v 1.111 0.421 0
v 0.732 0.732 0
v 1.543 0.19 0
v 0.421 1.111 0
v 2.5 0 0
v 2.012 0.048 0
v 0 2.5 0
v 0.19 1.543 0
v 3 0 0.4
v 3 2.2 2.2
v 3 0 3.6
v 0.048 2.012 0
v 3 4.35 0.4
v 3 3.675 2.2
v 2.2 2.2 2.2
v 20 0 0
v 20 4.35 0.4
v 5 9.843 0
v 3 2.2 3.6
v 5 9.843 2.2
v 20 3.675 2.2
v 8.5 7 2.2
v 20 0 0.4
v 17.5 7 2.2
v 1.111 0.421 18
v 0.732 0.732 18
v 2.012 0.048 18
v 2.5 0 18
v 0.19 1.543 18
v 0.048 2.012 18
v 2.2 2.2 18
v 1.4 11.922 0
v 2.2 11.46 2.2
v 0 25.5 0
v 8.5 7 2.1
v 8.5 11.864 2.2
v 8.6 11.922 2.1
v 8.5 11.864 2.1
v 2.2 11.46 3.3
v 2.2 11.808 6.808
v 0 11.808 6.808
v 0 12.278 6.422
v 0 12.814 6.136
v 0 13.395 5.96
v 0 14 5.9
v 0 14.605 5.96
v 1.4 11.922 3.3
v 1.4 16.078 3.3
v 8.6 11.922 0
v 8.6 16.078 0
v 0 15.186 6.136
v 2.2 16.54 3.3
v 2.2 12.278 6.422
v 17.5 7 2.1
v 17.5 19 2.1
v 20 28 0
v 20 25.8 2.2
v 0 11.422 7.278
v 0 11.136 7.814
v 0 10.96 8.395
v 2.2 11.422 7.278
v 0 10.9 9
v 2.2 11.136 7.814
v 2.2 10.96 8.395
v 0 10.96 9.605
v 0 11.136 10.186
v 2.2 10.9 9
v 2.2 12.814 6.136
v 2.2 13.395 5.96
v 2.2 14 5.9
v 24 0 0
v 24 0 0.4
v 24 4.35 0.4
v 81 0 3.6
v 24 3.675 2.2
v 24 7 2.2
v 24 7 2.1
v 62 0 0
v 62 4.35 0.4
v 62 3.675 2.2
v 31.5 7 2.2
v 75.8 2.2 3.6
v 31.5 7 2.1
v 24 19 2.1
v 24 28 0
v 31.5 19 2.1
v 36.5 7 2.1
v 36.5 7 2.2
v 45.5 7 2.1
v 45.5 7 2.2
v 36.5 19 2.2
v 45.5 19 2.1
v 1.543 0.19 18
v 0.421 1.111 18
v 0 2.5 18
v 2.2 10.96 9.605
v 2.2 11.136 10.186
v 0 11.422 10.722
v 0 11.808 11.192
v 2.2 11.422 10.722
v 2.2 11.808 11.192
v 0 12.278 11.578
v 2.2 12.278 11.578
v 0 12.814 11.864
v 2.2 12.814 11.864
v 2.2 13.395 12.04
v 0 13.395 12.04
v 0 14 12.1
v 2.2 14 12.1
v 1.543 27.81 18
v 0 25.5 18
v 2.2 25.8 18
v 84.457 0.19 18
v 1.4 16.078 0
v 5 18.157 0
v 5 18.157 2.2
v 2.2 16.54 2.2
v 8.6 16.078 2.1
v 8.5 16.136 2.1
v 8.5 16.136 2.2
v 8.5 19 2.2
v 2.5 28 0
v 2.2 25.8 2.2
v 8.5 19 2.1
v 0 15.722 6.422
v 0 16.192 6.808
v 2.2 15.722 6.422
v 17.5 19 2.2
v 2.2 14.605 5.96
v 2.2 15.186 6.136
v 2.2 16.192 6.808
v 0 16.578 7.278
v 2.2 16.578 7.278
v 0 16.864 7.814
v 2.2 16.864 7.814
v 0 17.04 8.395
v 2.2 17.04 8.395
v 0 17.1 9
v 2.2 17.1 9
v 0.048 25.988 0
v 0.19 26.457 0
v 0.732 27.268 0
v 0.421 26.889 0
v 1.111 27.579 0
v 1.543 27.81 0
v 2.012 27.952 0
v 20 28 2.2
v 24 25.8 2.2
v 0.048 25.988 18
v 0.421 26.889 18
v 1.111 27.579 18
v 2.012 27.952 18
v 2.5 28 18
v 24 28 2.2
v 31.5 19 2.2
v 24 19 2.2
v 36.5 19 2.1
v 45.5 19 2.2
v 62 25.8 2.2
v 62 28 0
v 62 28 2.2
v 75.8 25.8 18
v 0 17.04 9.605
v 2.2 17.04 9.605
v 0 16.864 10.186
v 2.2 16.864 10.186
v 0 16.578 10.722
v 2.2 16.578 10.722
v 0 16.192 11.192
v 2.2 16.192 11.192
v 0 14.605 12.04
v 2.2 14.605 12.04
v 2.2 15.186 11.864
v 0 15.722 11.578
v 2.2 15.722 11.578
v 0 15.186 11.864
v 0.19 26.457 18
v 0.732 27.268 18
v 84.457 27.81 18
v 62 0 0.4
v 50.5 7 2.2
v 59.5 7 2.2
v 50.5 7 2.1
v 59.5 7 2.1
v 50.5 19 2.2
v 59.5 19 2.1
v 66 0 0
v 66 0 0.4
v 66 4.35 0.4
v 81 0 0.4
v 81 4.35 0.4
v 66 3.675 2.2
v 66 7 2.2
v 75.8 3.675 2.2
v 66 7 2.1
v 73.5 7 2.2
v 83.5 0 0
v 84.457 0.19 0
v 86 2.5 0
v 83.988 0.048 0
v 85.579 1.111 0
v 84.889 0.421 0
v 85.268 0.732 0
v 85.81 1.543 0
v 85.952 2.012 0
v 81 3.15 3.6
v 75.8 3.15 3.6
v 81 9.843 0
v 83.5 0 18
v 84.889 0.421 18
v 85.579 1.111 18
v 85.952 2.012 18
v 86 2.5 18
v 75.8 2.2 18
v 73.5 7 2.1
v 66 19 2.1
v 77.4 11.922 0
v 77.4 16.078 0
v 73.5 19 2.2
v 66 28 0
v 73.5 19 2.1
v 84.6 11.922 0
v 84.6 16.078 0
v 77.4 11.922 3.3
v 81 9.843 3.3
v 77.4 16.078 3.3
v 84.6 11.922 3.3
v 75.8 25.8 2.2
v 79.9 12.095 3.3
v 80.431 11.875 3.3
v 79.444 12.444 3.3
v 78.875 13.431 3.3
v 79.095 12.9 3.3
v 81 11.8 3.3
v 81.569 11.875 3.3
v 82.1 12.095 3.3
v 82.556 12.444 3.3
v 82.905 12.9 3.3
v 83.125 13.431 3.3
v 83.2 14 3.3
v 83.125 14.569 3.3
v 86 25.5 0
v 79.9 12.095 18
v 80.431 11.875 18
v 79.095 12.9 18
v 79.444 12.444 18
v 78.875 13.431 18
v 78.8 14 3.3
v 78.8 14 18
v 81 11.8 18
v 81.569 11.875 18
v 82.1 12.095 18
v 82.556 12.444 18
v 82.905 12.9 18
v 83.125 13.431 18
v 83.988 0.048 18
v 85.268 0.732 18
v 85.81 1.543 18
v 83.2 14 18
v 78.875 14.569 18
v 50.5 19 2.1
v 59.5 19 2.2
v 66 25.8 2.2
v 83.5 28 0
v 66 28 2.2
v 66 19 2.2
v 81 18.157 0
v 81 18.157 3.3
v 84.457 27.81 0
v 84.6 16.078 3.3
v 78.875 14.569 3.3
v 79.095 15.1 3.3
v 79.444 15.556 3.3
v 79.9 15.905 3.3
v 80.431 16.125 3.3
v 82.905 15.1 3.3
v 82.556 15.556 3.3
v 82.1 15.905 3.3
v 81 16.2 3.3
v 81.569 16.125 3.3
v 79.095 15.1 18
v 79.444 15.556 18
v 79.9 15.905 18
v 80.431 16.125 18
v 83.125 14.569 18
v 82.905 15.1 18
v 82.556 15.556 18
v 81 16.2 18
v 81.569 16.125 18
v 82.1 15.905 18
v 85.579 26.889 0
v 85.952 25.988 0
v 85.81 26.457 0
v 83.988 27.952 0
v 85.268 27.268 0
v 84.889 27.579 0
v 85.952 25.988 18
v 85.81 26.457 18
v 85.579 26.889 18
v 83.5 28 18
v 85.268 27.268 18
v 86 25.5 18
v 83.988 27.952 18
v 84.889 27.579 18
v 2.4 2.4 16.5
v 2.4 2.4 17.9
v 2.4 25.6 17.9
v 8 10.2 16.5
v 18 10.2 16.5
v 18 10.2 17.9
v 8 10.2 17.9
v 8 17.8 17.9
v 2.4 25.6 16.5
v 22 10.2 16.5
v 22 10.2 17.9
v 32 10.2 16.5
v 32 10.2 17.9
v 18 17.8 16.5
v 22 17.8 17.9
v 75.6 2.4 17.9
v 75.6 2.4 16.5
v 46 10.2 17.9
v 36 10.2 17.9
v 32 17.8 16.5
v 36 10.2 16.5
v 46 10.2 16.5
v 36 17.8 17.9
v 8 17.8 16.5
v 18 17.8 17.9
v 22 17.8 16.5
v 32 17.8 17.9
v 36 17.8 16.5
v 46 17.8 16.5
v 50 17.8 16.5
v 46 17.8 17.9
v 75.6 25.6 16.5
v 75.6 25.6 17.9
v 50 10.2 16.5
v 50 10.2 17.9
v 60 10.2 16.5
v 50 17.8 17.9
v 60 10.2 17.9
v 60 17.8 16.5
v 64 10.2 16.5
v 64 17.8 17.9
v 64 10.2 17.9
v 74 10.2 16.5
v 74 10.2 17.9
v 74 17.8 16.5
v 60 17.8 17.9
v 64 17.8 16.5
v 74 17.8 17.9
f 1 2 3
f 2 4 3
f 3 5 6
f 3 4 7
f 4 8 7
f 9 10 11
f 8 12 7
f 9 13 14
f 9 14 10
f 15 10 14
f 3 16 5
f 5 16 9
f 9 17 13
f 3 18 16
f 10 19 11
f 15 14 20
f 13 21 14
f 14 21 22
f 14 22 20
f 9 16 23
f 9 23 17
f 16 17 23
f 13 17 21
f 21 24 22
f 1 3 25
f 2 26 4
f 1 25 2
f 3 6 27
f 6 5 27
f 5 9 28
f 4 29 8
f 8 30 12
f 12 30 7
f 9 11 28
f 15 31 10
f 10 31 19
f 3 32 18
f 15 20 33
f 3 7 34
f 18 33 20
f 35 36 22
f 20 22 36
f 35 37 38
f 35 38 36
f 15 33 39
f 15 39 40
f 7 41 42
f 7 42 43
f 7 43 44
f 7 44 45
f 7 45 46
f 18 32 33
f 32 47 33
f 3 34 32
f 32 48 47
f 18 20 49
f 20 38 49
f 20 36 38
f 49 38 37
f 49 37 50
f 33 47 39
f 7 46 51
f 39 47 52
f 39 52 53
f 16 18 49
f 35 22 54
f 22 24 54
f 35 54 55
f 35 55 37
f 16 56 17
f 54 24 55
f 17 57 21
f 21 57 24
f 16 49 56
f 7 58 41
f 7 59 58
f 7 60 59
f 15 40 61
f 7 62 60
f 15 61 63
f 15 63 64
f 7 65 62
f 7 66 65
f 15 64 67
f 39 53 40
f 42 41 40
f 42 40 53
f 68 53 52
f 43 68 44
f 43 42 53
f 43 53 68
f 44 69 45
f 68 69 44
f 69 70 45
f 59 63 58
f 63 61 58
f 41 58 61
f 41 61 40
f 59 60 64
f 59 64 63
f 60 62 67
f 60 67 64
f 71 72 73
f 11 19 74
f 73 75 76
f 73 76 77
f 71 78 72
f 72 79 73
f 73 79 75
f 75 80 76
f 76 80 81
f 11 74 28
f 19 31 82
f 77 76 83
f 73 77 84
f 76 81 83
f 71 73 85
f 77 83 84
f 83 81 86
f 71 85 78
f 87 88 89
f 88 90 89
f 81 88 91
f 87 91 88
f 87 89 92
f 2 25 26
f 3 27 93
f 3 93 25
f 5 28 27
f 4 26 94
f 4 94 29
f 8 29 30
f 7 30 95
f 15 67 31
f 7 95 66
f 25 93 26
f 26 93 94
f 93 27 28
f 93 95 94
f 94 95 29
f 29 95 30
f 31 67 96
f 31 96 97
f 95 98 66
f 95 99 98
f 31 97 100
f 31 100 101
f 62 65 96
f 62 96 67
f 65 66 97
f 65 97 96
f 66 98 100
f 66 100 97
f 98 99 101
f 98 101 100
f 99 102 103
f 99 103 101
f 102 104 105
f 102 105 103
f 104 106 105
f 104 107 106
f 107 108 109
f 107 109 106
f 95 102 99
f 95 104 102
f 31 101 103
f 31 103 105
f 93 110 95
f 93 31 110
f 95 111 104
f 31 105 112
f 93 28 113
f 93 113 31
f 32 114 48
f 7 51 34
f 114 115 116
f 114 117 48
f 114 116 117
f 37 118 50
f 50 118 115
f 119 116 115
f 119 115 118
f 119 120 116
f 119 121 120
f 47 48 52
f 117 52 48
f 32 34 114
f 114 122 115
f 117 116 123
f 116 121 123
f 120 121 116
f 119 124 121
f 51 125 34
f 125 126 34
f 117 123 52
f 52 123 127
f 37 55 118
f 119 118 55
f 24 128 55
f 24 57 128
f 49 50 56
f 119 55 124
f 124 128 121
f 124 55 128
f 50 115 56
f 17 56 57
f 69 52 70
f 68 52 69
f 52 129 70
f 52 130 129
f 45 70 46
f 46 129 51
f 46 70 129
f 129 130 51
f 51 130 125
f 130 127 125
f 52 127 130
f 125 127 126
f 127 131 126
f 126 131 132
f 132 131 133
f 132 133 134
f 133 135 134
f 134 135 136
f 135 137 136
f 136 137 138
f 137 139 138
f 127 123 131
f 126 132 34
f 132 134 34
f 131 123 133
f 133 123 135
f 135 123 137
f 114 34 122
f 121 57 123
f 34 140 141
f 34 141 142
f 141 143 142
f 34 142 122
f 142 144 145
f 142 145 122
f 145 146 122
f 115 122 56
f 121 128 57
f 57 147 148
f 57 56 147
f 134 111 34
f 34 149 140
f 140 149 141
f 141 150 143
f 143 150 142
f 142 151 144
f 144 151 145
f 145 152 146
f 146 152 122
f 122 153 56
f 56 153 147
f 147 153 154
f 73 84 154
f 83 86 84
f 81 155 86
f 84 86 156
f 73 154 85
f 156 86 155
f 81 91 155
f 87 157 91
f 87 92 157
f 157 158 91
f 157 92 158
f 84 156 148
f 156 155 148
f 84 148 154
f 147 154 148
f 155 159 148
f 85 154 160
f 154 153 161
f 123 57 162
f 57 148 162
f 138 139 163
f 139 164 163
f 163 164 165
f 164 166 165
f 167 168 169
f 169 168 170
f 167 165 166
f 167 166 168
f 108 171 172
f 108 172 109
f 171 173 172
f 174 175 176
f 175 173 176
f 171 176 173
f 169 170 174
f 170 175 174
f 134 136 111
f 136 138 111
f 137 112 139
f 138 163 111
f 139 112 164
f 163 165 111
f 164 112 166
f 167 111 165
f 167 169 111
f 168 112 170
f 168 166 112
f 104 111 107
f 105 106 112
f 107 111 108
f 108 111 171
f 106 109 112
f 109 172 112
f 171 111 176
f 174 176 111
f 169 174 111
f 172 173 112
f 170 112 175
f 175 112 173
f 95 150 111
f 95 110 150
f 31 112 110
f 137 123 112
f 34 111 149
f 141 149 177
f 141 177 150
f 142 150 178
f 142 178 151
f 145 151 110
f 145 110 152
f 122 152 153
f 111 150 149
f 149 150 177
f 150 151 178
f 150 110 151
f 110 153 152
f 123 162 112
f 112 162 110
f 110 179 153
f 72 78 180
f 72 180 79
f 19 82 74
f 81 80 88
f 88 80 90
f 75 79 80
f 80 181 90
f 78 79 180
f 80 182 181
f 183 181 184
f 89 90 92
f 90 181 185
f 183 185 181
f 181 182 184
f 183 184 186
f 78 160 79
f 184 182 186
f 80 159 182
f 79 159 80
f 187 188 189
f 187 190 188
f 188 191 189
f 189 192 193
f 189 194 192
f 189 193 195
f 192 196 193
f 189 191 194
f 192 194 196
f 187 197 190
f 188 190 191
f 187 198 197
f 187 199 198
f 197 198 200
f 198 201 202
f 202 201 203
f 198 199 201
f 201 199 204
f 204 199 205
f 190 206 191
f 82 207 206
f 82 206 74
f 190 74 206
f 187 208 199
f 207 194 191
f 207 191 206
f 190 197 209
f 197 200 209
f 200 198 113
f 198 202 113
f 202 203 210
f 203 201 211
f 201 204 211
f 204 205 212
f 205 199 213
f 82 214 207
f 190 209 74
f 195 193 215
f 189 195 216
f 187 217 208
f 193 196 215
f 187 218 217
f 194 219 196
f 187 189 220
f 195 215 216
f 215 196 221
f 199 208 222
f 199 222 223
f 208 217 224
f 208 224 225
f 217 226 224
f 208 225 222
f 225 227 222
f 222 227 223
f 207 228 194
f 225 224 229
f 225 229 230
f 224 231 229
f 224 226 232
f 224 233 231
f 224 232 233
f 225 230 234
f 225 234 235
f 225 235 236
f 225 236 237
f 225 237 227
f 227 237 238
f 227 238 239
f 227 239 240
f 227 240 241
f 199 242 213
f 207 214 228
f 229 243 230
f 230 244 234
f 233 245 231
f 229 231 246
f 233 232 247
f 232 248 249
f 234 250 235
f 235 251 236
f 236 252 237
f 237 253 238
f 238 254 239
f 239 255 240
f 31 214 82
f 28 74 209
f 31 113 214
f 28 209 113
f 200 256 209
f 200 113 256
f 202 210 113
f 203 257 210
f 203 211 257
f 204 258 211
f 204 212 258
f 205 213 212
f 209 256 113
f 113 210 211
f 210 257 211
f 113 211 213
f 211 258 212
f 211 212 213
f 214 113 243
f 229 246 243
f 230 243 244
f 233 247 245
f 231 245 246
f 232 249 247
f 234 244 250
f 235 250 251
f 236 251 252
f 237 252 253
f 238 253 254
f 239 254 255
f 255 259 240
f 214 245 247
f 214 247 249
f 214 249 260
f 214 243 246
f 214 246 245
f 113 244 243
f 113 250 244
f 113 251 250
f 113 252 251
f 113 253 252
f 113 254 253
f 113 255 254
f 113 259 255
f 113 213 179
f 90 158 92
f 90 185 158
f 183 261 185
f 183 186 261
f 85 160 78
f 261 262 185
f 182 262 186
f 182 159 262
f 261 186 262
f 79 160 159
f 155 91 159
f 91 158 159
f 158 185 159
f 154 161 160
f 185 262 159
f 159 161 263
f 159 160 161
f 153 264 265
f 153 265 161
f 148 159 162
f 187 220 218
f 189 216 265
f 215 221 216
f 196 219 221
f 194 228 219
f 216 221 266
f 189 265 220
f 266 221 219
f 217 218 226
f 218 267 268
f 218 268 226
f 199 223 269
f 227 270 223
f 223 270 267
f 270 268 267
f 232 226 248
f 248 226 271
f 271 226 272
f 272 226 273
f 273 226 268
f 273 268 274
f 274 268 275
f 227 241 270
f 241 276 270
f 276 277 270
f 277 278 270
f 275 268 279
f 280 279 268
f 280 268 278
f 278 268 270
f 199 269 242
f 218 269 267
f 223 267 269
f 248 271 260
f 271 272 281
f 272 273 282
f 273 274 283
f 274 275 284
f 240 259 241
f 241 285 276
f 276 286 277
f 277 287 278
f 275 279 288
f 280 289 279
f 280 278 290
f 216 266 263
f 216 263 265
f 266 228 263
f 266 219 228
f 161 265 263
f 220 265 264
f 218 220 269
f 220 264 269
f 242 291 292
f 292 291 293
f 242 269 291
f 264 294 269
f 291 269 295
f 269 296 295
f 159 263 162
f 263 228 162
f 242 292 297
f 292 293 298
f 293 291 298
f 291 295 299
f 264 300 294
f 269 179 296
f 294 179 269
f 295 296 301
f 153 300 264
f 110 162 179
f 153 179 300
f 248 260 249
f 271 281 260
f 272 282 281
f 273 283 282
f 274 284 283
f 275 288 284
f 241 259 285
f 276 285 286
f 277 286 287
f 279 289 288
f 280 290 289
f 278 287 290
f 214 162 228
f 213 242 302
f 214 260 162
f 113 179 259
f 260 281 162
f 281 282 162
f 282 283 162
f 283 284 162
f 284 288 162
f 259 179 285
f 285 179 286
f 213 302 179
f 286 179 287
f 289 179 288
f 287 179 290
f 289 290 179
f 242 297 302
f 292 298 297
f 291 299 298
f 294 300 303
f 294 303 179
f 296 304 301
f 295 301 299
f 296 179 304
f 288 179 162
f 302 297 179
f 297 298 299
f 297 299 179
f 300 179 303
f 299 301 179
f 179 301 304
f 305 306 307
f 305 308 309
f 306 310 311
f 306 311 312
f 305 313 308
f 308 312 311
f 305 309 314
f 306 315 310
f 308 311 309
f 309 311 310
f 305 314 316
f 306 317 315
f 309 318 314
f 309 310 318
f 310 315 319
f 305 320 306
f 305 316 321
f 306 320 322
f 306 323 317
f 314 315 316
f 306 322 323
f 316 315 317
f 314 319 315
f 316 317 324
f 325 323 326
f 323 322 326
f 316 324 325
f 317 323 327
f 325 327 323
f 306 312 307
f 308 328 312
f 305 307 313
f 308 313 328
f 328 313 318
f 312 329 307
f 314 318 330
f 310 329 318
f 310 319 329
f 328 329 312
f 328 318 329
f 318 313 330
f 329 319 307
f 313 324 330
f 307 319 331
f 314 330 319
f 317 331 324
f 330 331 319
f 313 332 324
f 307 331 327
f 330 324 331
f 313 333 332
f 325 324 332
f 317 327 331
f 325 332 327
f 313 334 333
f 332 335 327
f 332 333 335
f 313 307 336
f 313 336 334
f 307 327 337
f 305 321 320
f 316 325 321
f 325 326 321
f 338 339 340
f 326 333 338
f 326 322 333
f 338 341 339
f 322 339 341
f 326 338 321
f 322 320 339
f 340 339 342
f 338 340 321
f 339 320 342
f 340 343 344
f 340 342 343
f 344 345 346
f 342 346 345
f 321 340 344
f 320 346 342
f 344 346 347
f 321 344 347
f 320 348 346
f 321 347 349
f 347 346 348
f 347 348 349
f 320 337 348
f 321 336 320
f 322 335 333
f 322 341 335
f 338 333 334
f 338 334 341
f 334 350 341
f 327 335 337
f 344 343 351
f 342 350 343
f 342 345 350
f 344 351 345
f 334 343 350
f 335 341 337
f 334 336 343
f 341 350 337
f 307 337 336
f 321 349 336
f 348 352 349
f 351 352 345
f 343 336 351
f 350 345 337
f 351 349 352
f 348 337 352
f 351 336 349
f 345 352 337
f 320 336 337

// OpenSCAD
// =============================================================================
// OpenMotorBridge - Vehicle Breakout Satellite Housing (5-Port Standard)
// =============================================================================
// File: hardware/cad/scad/04_front_node/vehicle_breakout_block.scad
// Description: Modular 3D-printed distribution bar for vehicle subframe/beak.
//              Houses 5x latching sockets:
//              1. 12V In (KL15 switched ignition & Ground)
//              2. CAN Bus (CAN_H, CAN_L, GND)
//              3. Mirror BSD (Left & Right amber radar alert LEDs)
//              4. Aux Light / 12V GPS Cradle (Switched 12V via TPS1H100)
//              5. GNSS & Climate Puck (I2C: 3V3, GND, SDA, SCL for SAM-M10Q & TMP117)
//              Includes dovetail mating groove to slide-lock with cockpit_breakout_block.
// =============================================================================

include <../00_common/parameters.scad>;

part = "all"; // [all, body, lid]

// Main dimensions (Standardized 86.0 mm length for flush dovetail mating with Cockpit Satellite)
VEHICLE_BLOCK_L = 86.0;
VEHICLE_BLOCK_W = 28.0;
VEHICLE_BLOCK_H = 18.0;
WALL            = 2.2;

// Dovetail interlocking parameters (matching cockpit_breakout_block)
DOVETAIL_W_BOTTOM = 6.0;
DOVETAIL_W_TOP    = 8.4;
DOVETAIL_H        = 3.0;
DOVETAIL_L        = VEHICLE_BLOCK_L - 10.0;

module dovetail_female(length = DOVETAIL_L + 2.0, clearance = 0.25) {
    linear_extrude(height = length) {
        polygon(points=[
            [-(DOVETAIL_W_BOTTOM/2 + clearance), -0.1],
            [ (DOVETAIL_W_BOTTOM/2 + clearance), -0.1],
            [ (DOVETAIL_W_TOP/2 + clearance),    DOVETAIL_H + 0.1],
            [-(DOVETAIL_W_TOP/2 + clearance),    DOVETAIL_H + 0.1]
        ]);
    }
}

// 1. Vehicle Breakout Main Housing
module vehicle_breakout_body() {
    color([0.22, 0.22, 0.24]) // Charcoal ASA / MJF PA12
    difference() {
        // Main solid rounded housing block
        hull() {
            translate([2.5, 2.5, 0])
                cylinder(r=2.5, h=VEHICLE_BLOCK_H, center=false, $fn=32);
            translate([VEHICLE_BLOCK_L - 2.5, 2.5, 0])
                cylinder(r=2.5, h=VEHICLE_BLOCK_H, center=false, $fn=32);
            translate([2.5, VEHICLE_BLOCK_W - 2.5, 0])
                cylinder(r=2.5, h=VEHICLE_BLOCK_H, center=false, $fn=32);
            translate([VEHICLE_BLOCK_L - 2.5, VEHICLE_BLOCK_W - 2.5, 0])
                cylinder(r=2.5, h=VEHICLE_BLOCK_H, center=false, $fn=32);
        }
        
        // Female Dovetail Slide Groove on South Edge (Y = 0) to mate with Cockpit Satellite
        translate([VEHICLE_BLOCK_L - 5.0, -0.1, 3.5])
            rotate([0, -90, 0])
                rotate([0, 0, 90])
                    dovetail_female();
                    
        // Internal wiring cavity
        translate([WALL, WALL, WALL])
            cube(size=[VEHICLE_BLOCK_L - 2*WALL - 8.0, VEHICLE_BLOCK_W - 2*WALL, VEHICLE_BLOCK_H], center=false);
            
        // Cable Inflow Gland on West Flank (Ø 6.2 mm bore for 12-conductor shielded harness)
        translate([-0.5, VEHICLE_BLOCK_W / 2.0, VEHICLE_BLOCK_H / 2.0])
            rotate([0, 90, 0])
                cylinder(r=3.1, h=WALL + 2.0, center=false, $fn=32);
                
        // Internal zip-tie strain relief channel
        translate([WALL + 3.0, VEHICLE_BLOCK_W/2.0 - 1.25, 0])
            cube(size=[2.5, 2.5, VEHICLE_BLOCK_H - 2.0], center=false);
            
        // 5x COTS Connector Sockets (Top face Z = VEHICLE_BLOCK_H)
        // Spaced along X at 13.0, 27.0, 41.0, 55.0, 69.0 mm
        conn_x = [13.0, 27.0, 41.0, 55.0, 69.0];
        for (cx = conn_x) {
            // Rectangular receptacle pocket for JST-JWPF / JST-SM latching plug (10.5 x 8.0 mm)
            translate([cx - 5.25, 10.0, VEHICLE_BLOCK_H - 12.0])
                cube(size=[10.5, 8.0, 12.5], center=false);
                
            // Latch clearance slot on rear face of socket
            translate([cx - 2.5, 18.0 - 0.1, VEHICLE_BLOCK_H - 8.0])
                cube(size=[5.0, 2.0, 8.5], center=false);
                
            // Solder lead wire passage down to floor
            translate([cx - 4.5, 7.0, WALL - 0.1])
                cube(size=[9.0, 12.0, VEHICLE_BLOCK_H - 10.0], center=false);
        }
        
        // 2x M4 Clearance Holes for direct subframe/beak bracket mounting (X = 5.0 and X = 81.0)
        translate([5.0, VEHICLE_BLOCK_W / 2.0, -0.5])
            cylinder(r=M4_SCREW_HOLE_R, h=VEHICLE_BLOCK_H + 1.0, center=false, $fn=24);
        translate([81.0, VEHICLE_BLOCK_W / 2.0, -0.5])
            cylinder(r=M4_SCREW_HOLE_R, h=VEHICLE_BLOCK_H + 1.0, center=false, $fn=24);
            
        // 2x Captive M4 Hex Nut Pockets on bottom (DIN 934)
        translate([5.0, VEHICLE_BLOCK_W / 2.0, -0.1])
            rotate([0, 0, 30])
                cylinder(r=NUT_M4_SW / (2 * cos(30)), h=NUT_M4_H, center=false, $fn=6);
        translate([81.0, VEHICLE_BLOCK_W / 2.0, -0.1])
            rotate([0, 0, 30])
                cylinder(r=NUT_M4_SW / (2 * cos(30)), h=NUT_M4_H, center=false, $fn=6);
                
        // 2x Zip-Tie Channels on bottom for frame tube fastening (4.0 x 2.2 mm)
        translate([20.0, -0.5, 0])
            cube(size=[4.0, VEHICLE_BLOCK_W + 1.0, 2.2], center=false);
        translate([62.0, -0.5, 0])
            cube(size=[4.0, VEHICLE_BLOCK_W + 1.0, 2.2], center=false);
    }
}

// 2. Weatherproof Snap-On Lid Plate
module vehicle_breakout_lid() {
    color([0.28, 0.28, 0.30])
    difference() {
        translate([WALL + 0.2, WALL + 0.2, VEHICLE_BLOCK_H - 1.5])
            cube(size=[VEHICLE_BLOCK_L - 2*WALL - 8.4, VEHICLE_BLOCK_W - 2*WALL - 0.4, 1.4], center=false);
            
        // Apertures for the 5 connectors
        conn_x = [13.0, 27.0, 41.0, 55.0, 69.0];
        for (cx = conn_x) {
            translate([cx - 5.0, 10.2, VEHICLE_BLOCK_H - 2.0])
                cube(size=[10.0, 7.6, 3.0], center=false);
        }
    }
}

// Render selector
if (part == "lid") {
    vehicle_breakout_lid();
} else if (part == "body") {
    vehicle_breakout_body();
} else {
    vehicle_breakout_body();
    vehicle_breakout_lid();
}
